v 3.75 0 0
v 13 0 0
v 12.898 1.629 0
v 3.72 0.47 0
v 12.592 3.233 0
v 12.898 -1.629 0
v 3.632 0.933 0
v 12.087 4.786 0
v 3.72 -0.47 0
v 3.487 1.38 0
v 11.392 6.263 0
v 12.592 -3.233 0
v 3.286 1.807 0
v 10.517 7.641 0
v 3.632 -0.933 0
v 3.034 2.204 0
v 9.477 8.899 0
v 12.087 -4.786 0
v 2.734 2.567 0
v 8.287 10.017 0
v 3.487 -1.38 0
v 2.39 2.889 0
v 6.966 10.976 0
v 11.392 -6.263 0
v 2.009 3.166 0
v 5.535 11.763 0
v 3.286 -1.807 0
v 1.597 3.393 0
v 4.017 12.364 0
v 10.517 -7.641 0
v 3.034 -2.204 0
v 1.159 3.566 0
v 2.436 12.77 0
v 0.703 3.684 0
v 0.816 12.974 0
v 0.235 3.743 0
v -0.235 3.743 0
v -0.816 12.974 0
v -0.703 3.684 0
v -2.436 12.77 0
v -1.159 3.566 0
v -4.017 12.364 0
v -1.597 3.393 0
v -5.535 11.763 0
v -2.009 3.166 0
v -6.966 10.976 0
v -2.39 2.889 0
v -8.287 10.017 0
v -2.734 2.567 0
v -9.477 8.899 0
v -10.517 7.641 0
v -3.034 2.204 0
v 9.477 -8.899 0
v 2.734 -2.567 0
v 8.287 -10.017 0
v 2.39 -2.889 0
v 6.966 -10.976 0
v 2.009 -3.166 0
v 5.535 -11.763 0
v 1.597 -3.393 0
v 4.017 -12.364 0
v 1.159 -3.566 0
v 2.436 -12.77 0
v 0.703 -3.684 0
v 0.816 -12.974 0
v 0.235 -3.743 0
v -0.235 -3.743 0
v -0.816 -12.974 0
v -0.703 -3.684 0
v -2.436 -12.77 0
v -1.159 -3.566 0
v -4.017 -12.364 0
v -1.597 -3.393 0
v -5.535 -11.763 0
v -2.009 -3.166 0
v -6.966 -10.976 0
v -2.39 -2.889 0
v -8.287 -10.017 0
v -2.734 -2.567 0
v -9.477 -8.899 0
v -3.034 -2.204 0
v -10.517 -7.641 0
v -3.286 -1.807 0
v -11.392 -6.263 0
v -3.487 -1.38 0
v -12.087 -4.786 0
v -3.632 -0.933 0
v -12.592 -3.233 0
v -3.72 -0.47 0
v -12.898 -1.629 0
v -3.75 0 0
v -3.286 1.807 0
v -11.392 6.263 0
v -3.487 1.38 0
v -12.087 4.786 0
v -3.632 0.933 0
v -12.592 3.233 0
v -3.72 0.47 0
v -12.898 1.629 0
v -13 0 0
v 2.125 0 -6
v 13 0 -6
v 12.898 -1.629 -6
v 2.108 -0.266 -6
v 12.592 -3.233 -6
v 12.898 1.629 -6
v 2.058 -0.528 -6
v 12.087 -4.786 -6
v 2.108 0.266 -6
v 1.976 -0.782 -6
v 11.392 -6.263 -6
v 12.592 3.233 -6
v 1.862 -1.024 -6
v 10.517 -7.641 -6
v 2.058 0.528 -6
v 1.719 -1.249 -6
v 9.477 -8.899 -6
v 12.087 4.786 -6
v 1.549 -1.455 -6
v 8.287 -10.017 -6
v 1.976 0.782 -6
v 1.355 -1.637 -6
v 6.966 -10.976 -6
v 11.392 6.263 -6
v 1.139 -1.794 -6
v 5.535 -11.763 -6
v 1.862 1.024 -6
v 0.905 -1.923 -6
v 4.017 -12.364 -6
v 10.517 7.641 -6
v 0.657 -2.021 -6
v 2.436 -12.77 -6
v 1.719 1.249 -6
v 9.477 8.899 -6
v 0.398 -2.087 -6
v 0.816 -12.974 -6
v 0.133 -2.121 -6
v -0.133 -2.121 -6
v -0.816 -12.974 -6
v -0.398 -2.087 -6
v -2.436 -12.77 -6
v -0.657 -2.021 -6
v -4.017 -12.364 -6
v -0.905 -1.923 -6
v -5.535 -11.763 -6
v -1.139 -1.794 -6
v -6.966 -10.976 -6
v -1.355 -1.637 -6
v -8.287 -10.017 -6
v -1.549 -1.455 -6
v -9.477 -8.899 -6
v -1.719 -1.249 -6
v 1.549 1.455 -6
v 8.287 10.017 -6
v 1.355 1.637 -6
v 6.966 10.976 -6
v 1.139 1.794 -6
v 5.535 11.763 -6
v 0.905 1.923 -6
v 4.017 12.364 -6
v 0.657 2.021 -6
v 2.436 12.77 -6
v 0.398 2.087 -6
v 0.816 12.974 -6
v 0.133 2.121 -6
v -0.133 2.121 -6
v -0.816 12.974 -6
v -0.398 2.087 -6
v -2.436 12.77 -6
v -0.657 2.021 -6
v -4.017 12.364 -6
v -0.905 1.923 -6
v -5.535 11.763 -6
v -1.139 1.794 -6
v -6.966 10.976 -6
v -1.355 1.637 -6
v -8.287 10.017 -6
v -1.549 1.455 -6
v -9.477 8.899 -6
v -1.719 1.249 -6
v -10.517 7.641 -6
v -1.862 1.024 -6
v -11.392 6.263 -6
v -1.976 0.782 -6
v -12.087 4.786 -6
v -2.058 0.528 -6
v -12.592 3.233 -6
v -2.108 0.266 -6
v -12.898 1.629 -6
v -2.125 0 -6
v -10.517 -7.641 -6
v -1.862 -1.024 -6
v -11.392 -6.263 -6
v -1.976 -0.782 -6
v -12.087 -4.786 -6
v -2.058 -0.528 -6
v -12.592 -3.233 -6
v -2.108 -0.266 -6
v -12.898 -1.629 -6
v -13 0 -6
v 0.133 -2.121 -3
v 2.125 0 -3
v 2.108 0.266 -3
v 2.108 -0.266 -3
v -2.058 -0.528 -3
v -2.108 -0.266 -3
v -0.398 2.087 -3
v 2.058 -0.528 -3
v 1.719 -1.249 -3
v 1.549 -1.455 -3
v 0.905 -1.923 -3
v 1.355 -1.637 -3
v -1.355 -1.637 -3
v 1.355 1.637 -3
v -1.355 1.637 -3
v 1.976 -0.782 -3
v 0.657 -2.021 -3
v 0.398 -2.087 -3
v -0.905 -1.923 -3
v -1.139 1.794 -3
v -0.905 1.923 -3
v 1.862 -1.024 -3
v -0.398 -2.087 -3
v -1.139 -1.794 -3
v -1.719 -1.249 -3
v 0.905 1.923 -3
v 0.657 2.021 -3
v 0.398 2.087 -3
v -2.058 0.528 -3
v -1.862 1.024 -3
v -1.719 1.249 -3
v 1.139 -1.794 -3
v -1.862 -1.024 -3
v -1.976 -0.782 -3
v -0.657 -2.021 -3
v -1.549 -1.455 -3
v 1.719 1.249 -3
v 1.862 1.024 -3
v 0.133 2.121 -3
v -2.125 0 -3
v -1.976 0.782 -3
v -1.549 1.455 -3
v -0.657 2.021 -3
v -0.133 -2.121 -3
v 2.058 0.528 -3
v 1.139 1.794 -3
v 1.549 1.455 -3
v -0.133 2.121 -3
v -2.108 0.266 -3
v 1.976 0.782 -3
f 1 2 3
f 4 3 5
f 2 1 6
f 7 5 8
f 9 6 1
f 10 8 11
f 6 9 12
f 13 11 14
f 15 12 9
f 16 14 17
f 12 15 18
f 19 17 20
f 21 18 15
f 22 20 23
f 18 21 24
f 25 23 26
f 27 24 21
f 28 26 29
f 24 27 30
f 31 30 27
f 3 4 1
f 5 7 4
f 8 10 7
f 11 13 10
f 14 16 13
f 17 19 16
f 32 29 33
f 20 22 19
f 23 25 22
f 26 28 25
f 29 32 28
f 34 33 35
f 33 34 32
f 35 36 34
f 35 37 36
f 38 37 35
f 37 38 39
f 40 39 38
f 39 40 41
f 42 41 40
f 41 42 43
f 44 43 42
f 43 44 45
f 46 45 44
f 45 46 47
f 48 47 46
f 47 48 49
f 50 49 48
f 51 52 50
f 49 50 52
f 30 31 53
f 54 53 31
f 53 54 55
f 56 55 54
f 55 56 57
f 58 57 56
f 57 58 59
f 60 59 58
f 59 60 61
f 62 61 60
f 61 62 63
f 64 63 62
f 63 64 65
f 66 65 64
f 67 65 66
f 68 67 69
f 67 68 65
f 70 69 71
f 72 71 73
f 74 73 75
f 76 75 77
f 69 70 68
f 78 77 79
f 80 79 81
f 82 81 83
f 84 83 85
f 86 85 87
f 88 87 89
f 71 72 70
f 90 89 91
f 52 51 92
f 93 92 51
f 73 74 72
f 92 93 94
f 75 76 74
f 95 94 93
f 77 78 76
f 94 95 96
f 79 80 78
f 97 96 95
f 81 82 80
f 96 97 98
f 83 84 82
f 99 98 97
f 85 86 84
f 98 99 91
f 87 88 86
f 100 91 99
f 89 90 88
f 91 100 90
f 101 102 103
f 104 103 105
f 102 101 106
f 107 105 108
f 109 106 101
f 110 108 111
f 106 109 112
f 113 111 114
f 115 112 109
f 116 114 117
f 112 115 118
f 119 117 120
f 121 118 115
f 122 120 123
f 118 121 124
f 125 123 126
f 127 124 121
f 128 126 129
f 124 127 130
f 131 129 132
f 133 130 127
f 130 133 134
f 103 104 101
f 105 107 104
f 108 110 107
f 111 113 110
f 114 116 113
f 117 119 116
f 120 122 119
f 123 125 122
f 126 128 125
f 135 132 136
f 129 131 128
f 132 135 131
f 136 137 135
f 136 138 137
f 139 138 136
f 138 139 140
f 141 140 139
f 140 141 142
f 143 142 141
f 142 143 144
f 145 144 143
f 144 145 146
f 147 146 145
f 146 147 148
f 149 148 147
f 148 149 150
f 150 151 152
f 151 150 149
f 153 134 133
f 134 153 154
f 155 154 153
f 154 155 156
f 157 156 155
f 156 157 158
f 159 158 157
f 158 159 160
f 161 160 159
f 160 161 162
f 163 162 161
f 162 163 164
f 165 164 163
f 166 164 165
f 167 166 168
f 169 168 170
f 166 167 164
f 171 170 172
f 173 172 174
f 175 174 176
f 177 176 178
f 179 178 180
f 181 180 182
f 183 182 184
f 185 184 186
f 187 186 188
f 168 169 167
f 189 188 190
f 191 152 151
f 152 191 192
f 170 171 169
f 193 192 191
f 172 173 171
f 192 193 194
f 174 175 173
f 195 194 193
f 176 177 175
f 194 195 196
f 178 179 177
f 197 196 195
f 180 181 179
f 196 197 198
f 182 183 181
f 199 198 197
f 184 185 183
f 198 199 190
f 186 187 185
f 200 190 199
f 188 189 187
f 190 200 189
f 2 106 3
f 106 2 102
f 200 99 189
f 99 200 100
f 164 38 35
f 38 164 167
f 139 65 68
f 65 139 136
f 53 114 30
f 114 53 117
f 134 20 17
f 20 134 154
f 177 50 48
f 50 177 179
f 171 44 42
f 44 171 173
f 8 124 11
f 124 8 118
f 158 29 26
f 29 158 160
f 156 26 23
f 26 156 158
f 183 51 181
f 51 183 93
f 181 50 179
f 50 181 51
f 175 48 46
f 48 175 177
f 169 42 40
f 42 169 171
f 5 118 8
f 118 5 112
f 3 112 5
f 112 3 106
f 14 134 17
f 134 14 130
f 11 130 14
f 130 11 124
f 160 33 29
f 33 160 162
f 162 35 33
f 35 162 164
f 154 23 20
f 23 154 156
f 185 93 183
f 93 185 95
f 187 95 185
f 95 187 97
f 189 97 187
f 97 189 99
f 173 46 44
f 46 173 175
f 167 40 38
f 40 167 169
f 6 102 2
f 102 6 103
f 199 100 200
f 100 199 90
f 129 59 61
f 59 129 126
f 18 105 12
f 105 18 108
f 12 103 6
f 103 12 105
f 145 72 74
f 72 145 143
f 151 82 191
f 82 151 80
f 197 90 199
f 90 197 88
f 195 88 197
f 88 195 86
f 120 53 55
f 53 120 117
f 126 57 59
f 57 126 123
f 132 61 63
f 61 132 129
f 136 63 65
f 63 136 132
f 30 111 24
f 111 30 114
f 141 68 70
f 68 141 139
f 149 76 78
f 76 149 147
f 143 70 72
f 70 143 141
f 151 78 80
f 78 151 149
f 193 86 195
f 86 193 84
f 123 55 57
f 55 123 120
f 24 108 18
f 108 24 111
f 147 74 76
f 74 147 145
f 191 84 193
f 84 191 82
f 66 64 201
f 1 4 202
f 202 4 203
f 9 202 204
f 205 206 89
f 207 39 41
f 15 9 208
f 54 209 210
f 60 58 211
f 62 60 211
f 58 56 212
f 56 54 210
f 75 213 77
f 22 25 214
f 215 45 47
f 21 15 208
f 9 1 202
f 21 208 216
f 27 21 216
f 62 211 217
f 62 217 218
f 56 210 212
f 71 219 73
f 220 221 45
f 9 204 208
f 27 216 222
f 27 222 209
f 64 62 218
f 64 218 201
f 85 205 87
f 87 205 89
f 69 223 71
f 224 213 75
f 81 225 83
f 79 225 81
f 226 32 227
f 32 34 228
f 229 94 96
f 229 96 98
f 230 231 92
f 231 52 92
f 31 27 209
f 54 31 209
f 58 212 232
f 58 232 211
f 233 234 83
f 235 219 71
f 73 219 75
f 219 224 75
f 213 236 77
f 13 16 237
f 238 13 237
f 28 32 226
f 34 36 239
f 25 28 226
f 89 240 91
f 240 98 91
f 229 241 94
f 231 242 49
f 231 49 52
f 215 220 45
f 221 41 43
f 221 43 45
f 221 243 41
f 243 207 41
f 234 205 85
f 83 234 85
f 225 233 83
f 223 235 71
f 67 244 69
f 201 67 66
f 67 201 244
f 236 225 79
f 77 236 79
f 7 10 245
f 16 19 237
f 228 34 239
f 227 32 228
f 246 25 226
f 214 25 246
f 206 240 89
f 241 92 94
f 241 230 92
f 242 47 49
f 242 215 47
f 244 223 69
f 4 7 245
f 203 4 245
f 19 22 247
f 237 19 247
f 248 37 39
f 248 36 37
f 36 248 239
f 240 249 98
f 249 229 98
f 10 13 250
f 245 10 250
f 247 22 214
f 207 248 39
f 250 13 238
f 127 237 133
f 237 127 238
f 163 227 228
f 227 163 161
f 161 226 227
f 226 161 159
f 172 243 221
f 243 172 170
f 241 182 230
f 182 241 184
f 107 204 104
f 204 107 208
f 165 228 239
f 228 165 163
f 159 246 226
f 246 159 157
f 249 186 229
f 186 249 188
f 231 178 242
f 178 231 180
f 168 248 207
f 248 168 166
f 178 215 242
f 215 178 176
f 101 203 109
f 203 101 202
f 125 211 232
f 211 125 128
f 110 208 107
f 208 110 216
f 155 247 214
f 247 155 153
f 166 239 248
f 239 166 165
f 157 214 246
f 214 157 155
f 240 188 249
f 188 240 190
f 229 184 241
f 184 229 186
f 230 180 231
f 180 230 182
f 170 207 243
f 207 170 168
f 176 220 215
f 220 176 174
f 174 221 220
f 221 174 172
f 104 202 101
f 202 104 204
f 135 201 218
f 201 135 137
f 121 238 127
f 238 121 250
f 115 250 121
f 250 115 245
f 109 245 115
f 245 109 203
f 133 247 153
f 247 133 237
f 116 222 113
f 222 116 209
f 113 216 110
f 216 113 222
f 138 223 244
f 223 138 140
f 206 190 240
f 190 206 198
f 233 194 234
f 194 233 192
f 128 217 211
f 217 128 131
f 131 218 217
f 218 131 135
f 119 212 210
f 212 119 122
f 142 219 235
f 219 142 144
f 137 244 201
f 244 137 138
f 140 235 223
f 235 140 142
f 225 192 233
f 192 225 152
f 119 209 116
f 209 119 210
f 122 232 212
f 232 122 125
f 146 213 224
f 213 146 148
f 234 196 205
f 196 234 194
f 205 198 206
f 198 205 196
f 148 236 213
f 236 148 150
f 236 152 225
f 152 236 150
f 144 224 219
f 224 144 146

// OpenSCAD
$fn = 50;


difference() {
	union() {
		translate(v = [0, 0, -6.0000000000]) {
			cylinder(h = 6, r = 7.0000000000);
		}
		translate(v = [0, 0, -6.0000000000]) {
			cylinder(h = 6, r = 13.0000000000);
		}
	}
	union() {
		translate(v = [0, 0, 0]) {
			rotate(a = [0, 0, 0]) {
				difference() {
					union() {
						#translate(v = [0, 0, -6.0000000000]) {
							cylinder(h = 6, r = 2.0000000000);
						}
						#translate(v = [0, 0, -3]) {
							cylinder(h = 3, r1 = 2.1250000000, r2 = 3.7500000000);
						}
						#translate(v = [0, 0, -6.0000000000]) {
							cylinder(h = 6, r = 2.1250000000);
						}
						#translate(v = [0, 0, -6.0000000000]) {
							cylinder(h = 6, r = 2.0000000000);
						}
					}
					union();
				}
			}
		}
	}
}
